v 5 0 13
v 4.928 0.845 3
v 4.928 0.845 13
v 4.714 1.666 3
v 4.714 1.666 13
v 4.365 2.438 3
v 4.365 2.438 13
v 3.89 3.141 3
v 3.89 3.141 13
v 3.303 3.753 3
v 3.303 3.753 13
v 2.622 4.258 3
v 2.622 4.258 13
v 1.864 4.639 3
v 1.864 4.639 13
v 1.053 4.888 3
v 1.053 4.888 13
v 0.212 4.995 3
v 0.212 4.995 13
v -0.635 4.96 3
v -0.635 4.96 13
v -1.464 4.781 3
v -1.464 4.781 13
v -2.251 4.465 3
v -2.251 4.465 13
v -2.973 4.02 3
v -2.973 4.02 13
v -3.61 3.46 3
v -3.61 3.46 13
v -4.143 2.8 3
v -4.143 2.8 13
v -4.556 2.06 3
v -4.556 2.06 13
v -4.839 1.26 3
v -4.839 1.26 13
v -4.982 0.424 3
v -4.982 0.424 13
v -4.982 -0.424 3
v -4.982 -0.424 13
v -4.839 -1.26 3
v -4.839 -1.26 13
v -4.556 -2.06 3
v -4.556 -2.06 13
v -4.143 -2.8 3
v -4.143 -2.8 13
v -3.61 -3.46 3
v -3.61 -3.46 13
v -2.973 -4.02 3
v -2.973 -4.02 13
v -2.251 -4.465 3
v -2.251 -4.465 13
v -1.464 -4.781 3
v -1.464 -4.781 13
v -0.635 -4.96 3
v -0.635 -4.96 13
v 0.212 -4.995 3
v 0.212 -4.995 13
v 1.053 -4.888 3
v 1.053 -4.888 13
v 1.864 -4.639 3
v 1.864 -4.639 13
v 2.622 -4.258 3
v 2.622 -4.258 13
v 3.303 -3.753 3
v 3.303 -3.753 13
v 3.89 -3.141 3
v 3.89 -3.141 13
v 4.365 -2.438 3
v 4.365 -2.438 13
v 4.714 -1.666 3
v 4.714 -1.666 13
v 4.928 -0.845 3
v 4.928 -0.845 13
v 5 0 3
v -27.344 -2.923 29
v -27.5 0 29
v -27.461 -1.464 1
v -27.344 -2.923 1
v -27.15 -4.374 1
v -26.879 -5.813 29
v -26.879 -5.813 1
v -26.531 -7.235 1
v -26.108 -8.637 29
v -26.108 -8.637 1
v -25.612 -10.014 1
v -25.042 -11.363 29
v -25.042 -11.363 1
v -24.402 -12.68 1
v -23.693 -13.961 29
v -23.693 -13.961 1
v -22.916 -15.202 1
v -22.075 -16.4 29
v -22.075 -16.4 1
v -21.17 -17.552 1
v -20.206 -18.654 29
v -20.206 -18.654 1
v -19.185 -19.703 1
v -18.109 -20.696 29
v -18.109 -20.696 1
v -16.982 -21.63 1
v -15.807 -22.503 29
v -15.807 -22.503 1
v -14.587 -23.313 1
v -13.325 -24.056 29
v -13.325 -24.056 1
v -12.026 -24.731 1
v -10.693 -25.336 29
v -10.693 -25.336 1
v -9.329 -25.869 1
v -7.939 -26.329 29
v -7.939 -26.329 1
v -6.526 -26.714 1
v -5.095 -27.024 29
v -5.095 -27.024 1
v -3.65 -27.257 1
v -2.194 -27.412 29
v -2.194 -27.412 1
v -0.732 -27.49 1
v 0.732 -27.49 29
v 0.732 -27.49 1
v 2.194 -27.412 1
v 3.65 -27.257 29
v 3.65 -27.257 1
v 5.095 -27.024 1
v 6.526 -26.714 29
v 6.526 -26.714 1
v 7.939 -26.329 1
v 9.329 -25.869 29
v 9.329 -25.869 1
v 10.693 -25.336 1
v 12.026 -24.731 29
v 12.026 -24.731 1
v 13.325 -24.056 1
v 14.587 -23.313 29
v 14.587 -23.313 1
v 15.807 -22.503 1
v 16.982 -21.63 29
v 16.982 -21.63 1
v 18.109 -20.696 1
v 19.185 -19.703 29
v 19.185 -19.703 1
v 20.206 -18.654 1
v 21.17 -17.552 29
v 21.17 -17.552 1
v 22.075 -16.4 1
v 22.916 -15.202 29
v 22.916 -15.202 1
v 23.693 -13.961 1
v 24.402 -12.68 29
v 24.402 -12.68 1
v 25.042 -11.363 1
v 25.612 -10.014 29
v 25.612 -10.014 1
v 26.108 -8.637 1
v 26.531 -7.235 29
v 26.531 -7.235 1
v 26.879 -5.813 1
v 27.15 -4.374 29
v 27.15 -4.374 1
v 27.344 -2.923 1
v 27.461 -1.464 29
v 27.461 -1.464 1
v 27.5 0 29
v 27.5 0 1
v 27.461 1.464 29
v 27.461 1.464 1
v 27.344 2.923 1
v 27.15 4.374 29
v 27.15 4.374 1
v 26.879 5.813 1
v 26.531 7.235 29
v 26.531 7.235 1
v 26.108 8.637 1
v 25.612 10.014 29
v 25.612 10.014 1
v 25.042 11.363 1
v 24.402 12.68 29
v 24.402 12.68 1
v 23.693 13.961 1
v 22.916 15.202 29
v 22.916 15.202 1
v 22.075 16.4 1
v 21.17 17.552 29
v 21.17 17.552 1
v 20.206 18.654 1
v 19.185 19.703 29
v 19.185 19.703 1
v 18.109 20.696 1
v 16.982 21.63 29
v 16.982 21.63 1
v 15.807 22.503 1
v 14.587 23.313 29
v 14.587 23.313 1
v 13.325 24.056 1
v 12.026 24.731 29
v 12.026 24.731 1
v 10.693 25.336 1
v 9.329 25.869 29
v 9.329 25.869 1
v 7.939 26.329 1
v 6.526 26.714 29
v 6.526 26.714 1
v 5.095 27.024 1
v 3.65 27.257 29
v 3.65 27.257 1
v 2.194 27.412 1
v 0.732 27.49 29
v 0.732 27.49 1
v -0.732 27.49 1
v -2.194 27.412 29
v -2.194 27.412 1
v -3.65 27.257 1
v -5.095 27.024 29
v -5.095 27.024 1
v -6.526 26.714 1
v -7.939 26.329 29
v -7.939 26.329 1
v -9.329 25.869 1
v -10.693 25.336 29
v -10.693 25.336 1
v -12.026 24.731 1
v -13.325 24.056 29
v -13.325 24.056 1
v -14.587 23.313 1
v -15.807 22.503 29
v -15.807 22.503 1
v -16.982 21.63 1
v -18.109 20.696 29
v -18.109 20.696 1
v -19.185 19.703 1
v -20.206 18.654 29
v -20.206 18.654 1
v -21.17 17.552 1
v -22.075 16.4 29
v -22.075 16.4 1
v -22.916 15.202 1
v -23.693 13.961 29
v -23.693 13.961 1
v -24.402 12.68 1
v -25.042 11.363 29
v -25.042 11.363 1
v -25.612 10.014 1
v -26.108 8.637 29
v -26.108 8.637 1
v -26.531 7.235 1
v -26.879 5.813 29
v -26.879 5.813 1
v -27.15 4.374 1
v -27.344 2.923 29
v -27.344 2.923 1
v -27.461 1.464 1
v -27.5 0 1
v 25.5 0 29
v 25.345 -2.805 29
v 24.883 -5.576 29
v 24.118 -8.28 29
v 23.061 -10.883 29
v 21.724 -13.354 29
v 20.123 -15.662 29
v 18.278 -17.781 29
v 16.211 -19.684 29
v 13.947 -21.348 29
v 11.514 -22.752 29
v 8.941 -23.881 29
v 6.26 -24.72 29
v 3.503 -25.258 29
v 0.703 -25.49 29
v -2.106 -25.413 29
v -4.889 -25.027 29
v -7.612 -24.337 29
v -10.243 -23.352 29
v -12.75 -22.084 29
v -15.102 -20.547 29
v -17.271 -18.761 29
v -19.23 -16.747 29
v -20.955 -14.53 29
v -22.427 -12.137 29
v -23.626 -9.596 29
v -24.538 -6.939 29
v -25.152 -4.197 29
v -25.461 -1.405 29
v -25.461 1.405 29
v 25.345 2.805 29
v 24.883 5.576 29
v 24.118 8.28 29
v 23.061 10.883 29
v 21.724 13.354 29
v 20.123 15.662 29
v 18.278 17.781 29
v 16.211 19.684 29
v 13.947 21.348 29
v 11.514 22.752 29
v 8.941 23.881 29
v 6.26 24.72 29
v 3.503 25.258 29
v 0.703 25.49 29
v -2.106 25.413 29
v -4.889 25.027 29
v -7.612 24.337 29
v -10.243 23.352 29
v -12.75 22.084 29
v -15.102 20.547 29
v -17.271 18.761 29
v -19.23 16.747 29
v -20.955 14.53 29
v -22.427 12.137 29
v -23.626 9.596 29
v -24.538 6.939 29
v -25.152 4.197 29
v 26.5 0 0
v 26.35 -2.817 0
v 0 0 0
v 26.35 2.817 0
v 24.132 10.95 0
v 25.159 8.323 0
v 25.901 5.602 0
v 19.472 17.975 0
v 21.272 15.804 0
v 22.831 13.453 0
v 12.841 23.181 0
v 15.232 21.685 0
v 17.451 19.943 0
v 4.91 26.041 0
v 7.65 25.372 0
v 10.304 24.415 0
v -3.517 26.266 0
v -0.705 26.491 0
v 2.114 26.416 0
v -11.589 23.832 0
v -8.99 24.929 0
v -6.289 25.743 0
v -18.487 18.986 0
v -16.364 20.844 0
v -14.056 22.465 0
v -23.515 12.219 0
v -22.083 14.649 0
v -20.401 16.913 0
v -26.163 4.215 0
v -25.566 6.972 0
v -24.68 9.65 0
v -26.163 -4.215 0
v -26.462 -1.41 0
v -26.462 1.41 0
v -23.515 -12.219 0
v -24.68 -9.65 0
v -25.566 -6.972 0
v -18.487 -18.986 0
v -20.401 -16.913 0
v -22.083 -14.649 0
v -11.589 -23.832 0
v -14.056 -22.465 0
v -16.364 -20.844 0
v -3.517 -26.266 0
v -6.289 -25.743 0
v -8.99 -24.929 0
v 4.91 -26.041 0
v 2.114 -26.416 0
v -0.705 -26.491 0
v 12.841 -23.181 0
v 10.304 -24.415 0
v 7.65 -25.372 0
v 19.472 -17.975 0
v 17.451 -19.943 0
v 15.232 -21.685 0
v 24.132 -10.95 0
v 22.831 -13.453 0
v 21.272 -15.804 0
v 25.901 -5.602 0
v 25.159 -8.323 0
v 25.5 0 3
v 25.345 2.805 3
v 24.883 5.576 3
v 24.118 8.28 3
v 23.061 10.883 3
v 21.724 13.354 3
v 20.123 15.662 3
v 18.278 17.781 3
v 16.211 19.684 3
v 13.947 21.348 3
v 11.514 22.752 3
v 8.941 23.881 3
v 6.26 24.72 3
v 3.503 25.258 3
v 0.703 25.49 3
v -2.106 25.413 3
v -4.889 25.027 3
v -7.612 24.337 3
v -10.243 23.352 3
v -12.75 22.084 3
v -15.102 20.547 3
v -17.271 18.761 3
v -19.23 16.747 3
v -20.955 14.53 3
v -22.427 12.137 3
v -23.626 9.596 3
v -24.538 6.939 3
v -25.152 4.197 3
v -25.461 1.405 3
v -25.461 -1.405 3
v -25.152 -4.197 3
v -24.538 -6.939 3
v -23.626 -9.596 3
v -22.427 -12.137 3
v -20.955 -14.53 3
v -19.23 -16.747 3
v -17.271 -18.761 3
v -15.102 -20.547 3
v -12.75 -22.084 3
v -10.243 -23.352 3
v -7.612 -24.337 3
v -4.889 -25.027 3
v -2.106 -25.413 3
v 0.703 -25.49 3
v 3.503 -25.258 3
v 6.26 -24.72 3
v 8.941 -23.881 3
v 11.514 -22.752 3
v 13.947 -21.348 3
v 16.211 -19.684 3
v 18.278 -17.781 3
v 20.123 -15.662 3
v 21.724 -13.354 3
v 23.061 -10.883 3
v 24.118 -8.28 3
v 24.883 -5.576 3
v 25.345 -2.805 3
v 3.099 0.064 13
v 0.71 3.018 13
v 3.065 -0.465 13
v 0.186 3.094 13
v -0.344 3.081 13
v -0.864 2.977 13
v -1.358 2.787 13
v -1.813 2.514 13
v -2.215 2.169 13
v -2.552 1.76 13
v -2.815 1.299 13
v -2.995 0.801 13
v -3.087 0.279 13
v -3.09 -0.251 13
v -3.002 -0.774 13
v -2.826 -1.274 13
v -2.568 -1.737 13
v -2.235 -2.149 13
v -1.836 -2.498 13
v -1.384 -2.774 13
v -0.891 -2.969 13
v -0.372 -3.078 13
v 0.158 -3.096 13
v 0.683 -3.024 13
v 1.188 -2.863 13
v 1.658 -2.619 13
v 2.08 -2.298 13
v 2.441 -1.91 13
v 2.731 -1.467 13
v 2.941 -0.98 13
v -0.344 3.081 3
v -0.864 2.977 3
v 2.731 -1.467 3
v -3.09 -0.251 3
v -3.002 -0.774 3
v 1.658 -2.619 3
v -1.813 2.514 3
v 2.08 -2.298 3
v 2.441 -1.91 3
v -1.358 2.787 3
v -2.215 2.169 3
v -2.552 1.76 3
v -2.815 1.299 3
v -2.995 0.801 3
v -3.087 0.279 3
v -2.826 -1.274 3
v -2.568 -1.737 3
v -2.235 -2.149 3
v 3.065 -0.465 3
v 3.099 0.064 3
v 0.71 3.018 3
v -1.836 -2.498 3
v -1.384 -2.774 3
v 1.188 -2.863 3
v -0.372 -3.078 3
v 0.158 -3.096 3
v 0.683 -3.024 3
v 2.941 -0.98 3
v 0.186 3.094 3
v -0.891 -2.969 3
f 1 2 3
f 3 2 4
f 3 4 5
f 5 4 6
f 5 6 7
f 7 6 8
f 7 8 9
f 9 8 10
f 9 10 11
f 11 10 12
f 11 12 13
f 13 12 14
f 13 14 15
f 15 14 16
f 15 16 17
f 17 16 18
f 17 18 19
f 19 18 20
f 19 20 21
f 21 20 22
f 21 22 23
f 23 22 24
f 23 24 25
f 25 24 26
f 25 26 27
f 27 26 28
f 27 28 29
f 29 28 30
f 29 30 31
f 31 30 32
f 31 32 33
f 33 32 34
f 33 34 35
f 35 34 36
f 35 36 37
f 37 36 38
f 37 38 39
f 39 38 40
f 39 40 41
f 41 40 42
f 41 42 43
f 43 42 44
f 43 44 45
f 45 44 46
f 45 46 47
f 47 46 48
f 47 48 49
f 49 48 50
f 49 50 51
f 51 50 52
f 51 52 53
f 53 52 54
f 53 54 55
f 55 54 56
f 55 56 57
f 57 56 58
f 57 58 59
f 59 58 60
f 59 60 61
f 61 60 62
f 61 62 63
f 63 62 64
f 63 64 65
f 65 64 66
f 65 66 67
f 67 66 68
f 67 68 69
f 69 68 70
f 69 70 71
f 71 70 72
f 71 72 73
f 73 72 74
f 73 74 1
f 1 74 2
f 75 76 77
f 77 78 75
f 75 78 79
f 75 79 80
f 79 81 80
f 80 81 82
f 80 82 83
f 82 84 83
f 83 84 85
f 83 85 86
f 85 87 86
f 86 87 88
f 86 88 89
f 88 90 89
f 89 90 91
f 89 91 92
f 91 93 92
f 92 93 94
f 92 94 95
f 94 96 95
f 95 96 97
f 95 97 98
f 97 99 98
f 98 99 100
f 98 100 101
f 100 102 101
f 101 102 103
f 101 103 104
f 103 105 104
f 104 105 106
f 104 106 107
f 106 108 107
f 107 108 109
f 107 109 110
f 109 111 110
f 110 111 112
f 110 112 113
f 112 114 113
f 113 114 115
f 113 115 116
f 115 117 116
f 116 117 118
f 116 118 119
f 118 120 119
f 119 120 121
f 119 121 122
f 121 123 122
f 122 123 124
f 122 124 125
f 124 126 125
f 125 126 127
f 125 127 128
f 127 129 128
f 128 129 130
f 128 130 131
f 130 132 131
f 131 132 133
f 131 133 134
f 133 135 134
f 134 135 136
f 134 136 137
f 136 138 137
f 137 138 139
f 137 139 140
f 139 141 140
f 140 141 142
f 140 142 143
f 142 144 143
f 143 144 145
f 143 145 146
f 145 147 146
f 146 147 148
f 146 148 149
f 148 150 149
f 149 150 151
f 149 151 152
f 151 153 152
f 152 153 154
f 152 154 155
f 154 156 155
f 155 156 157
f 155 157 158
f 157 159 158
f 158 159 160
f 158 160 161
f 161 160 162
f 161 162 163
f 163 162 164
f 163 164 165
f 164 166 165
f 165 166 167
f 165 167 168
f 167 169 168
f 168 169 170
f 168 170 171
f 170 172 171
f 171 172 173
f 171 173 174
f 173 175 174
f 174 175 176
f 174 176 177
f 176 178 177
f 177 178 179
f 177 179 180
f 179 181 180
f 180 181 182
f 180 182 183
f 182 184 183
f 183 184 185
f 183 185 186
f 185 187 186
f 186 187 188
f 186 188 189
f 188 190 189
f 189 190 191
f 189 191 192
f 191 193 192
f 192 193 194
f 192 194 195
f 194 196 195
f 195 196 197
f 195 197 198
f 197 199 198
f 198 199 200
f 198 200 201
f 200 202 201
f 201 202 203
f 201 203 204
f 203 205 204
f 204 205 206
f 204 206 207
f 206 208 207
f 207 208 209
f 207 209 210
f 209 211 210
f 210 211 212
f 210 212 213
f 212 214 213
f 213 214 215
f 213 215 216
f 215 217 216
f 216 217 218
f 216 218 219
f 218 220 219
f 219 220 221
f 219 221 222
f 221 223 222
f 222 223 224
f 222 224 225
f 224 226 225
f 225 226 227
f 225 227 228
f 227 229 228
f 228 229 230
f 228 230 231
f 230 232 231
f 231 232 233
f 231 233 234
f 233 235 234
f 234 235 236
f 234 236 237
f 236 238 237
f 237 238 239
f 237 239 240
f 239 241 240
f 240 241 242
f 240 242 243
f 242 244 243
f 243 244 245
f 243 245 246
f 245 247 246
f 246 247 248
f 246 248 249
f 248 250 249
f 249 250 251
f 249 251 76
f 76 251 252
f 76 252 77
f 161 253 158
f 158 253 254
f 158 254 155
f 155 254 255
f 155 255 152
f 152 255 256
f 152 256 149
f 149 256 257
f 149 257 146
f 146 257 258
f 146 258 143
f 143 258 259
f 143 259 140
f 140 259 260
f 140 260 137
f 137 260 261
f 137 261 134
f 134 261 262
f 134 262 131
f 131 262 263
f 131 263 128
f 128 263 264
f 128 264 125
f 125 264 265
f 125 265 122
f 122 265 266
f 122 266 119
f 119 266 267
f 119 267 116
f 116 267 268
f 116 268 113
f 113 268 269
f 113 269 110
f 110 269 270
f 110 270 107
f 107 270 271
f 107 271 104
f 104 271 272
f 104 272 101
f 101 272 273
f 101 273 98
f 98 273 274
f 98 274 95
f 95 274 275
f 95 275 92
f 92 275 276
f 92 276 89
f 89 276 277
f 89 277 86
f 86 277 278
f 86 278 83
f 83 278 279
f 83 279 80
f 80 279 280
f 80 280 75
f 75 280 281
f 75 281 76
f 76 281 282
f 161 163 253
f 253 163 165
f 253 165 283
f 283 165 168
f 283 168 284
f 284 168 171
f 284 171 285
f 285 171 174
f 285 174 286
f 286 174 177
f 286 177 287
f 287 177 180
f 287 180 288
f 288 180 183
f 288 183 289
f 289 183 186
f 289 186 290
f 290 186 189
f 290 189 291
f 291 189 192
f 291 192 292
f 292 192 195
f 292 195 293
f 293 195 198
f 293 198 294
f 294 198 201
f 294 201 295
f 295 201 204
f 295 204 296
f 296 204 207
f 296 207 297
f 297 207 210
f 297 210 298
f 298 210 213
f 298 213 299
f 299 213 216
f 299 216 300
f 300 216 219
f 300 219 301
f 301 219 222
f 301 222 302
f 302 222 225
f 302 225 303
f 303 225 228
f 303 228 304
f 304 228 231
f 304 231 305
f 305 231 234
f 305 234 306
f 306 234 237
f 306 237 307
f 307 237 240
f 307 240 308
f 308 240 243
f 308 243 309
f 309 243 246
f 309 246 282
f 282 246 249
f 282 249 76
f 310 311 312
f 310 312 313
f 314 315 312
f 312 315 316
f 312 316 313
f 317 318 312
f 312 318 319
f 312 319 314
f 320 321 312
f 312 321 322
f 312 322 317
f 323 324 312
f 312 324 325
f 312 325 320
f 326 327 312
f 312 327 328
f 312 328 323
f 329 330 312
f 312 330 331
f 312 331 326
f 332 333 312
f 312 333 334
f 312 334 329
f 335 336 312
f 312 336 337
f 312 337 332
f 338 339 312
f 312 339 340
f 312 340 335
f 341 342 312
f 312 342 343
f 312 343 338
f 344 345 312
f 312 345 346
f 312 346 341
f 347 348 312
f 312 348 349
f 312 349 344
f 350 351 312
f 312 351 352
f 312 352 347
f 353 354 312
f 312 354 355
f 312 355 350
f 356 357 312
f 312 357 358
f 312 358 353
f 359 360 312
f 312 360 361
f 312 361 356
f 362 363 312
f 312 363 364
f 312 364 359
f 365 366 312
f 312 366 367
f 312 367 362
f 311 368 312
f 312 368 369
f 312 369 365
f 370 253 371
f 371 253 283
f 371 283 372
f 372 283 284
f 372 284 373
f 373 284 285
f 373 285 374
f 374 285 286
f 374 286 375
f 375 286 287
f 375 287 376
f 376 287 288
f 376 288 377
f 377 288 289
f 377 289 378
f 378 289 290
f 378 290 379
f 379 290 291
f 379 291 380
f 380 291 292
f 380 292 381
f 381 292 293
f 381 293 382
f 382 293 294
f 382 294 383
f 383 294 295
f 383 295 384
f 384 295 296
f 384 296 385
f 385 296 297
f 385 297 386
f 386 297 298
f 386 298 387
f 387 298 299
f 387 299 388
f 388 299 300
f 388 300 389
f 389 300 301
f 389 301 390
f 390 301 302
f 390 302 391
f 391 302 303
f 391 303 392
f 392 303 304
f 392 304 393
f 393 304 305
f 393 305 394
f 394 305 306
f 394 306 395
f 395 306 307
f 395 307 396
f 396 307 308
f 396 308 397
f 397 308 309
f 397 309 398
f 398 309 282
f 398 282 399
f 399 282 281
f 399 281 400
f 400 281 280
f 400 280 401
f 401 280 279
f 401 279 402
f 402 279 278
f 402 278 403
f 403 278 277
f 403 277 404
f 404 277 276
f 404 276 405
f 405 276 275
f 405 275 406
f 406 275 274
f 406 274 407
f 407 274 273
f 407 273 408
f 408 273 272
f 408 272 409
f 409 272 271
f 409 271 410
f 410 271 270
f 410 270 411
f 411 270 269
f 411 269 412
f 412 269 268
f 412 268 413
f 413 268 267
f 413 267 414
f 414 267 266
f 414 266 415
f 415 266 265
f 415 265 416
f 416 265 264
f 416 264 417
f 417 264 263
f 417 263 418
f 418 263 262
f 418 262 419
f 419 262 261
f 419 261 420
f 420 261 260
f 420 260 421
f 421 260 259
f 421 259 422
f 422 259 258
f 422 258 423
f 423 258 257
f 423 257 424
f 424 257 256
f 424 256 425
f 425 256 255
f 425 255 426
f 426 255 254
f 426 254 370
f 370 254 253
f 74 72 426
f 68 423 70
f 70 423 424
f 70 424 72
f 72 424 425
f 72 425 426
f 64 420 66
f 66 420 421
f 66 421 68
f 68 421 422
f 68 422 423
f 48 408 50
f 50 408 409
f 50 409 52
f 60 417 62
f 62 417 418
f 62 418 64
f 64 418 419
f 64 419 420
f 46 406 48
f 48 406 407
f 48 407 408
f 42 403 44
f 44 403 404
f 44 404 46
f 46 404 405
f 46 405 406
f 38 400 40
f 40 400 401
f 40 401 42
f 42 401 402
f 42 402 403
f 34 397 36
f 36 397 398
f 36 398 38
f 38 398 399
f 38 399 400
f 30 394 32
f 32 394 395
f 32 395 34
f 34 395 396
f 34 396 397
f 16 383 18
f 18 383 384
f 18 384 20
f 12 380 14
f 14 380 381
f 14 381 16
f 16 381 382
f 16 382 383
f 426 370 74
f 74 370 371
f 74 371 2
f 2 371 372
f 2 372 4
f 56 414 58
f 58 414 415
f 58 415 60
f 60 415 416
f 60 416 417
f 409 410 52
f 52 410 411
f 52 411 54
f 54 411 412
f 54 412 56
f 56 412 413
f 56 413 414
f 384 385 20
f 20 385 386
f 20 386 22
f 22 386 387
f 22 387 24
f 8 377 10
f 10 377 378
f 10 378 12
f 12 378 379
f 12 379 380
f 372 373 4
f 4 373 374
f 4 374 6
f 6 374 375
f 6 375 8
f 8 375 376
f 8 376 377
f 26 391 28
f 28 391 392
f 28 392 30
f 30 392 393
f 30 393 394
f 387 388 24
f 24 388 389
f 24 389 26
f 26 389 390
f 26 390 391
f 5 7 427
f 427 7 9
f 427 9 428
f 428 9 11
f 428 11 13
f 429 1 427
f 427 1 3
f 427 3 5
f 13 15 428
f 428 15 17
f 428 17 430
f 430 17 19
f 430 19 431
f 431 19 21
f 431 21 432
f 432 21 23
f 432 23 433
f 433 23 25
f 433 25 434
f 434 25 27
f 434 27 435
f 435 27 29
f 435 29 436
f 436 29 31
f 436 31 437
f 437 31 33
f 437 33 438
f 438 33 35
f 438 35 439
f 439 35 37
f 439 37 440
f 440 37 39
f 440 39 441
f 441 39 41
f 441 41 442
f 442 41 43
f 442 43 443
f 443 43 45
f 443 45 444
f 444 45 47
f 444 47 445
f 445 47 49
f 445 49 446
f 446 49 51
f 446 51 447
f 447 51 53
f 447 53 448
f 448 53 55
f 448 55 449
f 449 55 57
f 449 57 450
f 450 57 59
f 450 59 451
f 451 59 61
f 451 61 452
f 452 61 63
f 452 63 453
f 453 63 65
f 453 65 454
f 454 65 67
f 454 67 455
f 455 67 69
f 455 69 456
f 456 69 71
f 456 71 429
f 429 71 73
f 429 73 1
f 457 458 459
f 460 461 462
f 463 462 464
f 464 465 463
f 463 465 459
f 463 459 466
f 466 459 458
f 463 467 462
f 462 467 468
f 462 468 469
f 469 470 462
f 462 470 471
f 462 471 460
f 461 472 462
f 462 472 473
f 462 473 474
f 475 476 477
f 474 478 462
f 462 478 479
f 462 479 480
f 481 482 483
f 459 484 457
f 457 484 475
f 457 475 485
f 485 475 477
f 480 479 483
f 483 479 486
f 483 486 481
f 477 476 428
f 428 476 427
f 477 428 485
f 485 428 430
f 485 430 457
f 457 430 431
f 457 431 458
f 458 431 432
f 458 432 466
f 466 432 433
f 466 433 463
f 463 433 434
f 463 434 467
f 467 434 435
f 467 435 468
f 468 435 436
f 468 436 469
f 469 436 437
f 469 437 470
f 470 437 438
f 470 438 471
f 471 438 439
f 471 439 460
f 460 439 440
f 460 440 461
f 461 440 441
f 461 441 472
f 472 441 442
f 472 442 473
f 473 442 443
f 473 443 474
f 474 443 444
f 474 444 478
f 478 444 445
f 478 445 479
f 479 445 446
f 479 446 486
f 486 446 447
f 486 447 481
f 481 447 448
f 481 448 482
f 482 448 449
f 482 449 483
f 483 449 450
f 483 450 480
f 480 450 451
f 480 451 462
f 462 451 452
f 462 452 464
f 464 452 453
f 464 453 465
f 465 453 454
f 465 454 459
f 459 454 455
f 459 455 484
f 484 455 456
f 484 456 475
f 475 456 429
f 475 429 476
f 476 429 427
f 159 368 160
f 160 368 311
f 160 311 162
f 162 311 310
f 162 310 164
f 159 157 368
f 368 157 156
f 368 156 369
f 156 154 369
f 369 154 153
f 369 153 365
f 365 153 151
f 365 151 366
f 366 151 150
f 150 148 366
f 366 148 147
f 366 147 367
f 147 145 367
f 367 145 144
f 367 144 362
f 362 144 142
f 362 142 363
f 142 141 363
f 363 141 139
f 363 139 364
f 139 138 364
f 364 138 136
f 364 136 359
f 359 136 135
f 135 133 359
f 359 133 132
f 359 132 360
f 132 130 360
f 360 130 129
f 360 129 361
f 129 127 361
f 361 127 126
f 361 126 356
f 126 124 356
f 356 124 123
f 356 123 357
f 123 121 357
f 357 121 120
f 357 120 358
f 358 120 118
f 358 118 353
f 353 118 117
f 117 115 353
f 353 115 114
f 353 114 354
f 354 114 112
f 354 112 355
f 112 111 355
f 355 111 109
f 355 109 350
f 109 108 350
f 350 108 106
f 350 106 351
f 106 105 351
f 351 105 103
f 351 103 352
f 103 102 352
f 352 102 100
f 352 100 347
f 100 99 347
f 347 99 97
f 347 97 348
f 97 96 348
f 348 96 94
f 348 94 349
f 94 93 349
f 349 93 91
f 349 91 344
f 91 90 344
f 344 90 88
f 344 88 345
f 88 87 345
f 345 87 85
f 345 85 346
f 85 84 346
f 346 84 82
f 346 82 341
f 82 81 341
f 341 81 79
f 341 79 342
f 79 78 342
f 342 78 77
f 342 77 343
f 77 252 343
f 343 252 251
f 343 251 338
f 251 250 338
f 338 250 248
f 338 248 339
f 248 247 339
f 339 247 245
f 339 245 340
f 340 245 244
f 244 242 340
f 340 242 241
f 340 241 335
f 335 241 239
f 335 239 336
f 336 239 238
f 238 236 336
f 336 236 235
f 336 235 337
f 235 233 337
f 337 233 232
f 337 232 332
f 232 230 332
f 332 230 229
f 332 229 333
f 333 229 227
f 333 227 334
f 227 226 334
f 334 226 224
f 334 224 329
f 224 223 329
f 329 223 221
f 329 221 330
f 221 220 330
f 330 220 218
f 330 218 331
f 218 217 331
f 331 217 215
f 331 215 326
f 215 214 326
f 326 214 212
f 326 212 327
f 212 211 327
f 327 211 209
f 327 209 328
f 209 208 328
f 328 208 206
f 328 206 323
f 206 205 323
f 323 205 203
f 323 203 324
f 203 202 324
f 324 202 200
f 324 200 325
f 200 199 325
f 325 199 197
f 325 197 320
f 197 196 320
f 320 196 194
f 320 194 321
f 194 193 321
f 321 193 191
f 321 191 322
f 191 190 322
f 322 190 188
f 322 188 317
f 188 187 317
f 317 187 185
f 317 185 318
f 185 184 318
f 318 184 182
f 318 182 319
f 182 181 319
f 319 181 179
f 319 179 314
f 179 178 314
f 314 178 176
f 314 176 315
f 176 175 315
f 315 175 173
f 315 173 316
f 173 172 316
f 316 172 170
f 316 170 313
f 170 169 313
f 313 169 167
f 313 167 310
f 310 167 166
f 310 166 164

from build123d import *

# Parameters (mm, degrees)
SKETCH1_R           = 27.5
BOSS_EXTRUDE1_DEPTH = 29
SKETCH2_R           = 25.5
SKETCH2_R_2         = 5
CUT_EXTRUDE1_DEPTH  = 26
CUT_EXTRUDE2_DEPTH  = 26
SKETCH4_R           = 5
CUT_EXTRUDE3_DEPTH  = 16
CHAMFER1_SIZE       = 1


with BuildPart() as part:
    # Sketch1 → Boss-Extrude1 (new body)
    with BuildSketch(Plane.XY):
        with Locations(Location((0, 0, 0), (0, 0, 180))):
            Circle(SKETCH1_R)
    extrude(amount=BOSS_EXTRUDE1_DEPTH)

    # Sketch2 → Cut-Extrude1 (cut)
    with BuildSketch(Plane.XY.offset(29)):
        Circle(SKETCH2_R)
        Circle(SKETCH2_R_2, mode=Mode.SUBTRACT)
    extrude(amount=-CUT_EXTRUDE1_DEPTH, mode=Mode.SUBTRACT)

    # Sketch3 → Cut-Extrude2 (cut)
    with BuildSketch(Plane.XY.offset(29)):
        with BuildLine():
            Line((0.71010636, 3.017573356), (3.099332288, 0.064337932))
            ThreePointArc((3.099332288, 0.064337932), (-2.410053022, -1.949780611), (0.71010636, 3.017573356))
        make_face()
    extrude(amount=-CUT_EXTRUDE2_DEPTH, mode=Mode.SUBTRACT)

    # Sketch4 → Cut-Extrude3 (cut)
    with BuildSketch(Plane.XY.offset(29)):
        Circle(SKETCH4_R)
    extrude(amount=-CUT_EXTRUDE3_DEPTH, mode=Mode.SUBTRACT)

    # Chamfer1
    chamfer1_edges = [part.edges().sort_by_distance(p)[0] for p in [
        (27.5, 0, 0),
    ]]
    chamfer(chamfer1_edges, length=CHAMFER1_SIZE)


solid = part.part
